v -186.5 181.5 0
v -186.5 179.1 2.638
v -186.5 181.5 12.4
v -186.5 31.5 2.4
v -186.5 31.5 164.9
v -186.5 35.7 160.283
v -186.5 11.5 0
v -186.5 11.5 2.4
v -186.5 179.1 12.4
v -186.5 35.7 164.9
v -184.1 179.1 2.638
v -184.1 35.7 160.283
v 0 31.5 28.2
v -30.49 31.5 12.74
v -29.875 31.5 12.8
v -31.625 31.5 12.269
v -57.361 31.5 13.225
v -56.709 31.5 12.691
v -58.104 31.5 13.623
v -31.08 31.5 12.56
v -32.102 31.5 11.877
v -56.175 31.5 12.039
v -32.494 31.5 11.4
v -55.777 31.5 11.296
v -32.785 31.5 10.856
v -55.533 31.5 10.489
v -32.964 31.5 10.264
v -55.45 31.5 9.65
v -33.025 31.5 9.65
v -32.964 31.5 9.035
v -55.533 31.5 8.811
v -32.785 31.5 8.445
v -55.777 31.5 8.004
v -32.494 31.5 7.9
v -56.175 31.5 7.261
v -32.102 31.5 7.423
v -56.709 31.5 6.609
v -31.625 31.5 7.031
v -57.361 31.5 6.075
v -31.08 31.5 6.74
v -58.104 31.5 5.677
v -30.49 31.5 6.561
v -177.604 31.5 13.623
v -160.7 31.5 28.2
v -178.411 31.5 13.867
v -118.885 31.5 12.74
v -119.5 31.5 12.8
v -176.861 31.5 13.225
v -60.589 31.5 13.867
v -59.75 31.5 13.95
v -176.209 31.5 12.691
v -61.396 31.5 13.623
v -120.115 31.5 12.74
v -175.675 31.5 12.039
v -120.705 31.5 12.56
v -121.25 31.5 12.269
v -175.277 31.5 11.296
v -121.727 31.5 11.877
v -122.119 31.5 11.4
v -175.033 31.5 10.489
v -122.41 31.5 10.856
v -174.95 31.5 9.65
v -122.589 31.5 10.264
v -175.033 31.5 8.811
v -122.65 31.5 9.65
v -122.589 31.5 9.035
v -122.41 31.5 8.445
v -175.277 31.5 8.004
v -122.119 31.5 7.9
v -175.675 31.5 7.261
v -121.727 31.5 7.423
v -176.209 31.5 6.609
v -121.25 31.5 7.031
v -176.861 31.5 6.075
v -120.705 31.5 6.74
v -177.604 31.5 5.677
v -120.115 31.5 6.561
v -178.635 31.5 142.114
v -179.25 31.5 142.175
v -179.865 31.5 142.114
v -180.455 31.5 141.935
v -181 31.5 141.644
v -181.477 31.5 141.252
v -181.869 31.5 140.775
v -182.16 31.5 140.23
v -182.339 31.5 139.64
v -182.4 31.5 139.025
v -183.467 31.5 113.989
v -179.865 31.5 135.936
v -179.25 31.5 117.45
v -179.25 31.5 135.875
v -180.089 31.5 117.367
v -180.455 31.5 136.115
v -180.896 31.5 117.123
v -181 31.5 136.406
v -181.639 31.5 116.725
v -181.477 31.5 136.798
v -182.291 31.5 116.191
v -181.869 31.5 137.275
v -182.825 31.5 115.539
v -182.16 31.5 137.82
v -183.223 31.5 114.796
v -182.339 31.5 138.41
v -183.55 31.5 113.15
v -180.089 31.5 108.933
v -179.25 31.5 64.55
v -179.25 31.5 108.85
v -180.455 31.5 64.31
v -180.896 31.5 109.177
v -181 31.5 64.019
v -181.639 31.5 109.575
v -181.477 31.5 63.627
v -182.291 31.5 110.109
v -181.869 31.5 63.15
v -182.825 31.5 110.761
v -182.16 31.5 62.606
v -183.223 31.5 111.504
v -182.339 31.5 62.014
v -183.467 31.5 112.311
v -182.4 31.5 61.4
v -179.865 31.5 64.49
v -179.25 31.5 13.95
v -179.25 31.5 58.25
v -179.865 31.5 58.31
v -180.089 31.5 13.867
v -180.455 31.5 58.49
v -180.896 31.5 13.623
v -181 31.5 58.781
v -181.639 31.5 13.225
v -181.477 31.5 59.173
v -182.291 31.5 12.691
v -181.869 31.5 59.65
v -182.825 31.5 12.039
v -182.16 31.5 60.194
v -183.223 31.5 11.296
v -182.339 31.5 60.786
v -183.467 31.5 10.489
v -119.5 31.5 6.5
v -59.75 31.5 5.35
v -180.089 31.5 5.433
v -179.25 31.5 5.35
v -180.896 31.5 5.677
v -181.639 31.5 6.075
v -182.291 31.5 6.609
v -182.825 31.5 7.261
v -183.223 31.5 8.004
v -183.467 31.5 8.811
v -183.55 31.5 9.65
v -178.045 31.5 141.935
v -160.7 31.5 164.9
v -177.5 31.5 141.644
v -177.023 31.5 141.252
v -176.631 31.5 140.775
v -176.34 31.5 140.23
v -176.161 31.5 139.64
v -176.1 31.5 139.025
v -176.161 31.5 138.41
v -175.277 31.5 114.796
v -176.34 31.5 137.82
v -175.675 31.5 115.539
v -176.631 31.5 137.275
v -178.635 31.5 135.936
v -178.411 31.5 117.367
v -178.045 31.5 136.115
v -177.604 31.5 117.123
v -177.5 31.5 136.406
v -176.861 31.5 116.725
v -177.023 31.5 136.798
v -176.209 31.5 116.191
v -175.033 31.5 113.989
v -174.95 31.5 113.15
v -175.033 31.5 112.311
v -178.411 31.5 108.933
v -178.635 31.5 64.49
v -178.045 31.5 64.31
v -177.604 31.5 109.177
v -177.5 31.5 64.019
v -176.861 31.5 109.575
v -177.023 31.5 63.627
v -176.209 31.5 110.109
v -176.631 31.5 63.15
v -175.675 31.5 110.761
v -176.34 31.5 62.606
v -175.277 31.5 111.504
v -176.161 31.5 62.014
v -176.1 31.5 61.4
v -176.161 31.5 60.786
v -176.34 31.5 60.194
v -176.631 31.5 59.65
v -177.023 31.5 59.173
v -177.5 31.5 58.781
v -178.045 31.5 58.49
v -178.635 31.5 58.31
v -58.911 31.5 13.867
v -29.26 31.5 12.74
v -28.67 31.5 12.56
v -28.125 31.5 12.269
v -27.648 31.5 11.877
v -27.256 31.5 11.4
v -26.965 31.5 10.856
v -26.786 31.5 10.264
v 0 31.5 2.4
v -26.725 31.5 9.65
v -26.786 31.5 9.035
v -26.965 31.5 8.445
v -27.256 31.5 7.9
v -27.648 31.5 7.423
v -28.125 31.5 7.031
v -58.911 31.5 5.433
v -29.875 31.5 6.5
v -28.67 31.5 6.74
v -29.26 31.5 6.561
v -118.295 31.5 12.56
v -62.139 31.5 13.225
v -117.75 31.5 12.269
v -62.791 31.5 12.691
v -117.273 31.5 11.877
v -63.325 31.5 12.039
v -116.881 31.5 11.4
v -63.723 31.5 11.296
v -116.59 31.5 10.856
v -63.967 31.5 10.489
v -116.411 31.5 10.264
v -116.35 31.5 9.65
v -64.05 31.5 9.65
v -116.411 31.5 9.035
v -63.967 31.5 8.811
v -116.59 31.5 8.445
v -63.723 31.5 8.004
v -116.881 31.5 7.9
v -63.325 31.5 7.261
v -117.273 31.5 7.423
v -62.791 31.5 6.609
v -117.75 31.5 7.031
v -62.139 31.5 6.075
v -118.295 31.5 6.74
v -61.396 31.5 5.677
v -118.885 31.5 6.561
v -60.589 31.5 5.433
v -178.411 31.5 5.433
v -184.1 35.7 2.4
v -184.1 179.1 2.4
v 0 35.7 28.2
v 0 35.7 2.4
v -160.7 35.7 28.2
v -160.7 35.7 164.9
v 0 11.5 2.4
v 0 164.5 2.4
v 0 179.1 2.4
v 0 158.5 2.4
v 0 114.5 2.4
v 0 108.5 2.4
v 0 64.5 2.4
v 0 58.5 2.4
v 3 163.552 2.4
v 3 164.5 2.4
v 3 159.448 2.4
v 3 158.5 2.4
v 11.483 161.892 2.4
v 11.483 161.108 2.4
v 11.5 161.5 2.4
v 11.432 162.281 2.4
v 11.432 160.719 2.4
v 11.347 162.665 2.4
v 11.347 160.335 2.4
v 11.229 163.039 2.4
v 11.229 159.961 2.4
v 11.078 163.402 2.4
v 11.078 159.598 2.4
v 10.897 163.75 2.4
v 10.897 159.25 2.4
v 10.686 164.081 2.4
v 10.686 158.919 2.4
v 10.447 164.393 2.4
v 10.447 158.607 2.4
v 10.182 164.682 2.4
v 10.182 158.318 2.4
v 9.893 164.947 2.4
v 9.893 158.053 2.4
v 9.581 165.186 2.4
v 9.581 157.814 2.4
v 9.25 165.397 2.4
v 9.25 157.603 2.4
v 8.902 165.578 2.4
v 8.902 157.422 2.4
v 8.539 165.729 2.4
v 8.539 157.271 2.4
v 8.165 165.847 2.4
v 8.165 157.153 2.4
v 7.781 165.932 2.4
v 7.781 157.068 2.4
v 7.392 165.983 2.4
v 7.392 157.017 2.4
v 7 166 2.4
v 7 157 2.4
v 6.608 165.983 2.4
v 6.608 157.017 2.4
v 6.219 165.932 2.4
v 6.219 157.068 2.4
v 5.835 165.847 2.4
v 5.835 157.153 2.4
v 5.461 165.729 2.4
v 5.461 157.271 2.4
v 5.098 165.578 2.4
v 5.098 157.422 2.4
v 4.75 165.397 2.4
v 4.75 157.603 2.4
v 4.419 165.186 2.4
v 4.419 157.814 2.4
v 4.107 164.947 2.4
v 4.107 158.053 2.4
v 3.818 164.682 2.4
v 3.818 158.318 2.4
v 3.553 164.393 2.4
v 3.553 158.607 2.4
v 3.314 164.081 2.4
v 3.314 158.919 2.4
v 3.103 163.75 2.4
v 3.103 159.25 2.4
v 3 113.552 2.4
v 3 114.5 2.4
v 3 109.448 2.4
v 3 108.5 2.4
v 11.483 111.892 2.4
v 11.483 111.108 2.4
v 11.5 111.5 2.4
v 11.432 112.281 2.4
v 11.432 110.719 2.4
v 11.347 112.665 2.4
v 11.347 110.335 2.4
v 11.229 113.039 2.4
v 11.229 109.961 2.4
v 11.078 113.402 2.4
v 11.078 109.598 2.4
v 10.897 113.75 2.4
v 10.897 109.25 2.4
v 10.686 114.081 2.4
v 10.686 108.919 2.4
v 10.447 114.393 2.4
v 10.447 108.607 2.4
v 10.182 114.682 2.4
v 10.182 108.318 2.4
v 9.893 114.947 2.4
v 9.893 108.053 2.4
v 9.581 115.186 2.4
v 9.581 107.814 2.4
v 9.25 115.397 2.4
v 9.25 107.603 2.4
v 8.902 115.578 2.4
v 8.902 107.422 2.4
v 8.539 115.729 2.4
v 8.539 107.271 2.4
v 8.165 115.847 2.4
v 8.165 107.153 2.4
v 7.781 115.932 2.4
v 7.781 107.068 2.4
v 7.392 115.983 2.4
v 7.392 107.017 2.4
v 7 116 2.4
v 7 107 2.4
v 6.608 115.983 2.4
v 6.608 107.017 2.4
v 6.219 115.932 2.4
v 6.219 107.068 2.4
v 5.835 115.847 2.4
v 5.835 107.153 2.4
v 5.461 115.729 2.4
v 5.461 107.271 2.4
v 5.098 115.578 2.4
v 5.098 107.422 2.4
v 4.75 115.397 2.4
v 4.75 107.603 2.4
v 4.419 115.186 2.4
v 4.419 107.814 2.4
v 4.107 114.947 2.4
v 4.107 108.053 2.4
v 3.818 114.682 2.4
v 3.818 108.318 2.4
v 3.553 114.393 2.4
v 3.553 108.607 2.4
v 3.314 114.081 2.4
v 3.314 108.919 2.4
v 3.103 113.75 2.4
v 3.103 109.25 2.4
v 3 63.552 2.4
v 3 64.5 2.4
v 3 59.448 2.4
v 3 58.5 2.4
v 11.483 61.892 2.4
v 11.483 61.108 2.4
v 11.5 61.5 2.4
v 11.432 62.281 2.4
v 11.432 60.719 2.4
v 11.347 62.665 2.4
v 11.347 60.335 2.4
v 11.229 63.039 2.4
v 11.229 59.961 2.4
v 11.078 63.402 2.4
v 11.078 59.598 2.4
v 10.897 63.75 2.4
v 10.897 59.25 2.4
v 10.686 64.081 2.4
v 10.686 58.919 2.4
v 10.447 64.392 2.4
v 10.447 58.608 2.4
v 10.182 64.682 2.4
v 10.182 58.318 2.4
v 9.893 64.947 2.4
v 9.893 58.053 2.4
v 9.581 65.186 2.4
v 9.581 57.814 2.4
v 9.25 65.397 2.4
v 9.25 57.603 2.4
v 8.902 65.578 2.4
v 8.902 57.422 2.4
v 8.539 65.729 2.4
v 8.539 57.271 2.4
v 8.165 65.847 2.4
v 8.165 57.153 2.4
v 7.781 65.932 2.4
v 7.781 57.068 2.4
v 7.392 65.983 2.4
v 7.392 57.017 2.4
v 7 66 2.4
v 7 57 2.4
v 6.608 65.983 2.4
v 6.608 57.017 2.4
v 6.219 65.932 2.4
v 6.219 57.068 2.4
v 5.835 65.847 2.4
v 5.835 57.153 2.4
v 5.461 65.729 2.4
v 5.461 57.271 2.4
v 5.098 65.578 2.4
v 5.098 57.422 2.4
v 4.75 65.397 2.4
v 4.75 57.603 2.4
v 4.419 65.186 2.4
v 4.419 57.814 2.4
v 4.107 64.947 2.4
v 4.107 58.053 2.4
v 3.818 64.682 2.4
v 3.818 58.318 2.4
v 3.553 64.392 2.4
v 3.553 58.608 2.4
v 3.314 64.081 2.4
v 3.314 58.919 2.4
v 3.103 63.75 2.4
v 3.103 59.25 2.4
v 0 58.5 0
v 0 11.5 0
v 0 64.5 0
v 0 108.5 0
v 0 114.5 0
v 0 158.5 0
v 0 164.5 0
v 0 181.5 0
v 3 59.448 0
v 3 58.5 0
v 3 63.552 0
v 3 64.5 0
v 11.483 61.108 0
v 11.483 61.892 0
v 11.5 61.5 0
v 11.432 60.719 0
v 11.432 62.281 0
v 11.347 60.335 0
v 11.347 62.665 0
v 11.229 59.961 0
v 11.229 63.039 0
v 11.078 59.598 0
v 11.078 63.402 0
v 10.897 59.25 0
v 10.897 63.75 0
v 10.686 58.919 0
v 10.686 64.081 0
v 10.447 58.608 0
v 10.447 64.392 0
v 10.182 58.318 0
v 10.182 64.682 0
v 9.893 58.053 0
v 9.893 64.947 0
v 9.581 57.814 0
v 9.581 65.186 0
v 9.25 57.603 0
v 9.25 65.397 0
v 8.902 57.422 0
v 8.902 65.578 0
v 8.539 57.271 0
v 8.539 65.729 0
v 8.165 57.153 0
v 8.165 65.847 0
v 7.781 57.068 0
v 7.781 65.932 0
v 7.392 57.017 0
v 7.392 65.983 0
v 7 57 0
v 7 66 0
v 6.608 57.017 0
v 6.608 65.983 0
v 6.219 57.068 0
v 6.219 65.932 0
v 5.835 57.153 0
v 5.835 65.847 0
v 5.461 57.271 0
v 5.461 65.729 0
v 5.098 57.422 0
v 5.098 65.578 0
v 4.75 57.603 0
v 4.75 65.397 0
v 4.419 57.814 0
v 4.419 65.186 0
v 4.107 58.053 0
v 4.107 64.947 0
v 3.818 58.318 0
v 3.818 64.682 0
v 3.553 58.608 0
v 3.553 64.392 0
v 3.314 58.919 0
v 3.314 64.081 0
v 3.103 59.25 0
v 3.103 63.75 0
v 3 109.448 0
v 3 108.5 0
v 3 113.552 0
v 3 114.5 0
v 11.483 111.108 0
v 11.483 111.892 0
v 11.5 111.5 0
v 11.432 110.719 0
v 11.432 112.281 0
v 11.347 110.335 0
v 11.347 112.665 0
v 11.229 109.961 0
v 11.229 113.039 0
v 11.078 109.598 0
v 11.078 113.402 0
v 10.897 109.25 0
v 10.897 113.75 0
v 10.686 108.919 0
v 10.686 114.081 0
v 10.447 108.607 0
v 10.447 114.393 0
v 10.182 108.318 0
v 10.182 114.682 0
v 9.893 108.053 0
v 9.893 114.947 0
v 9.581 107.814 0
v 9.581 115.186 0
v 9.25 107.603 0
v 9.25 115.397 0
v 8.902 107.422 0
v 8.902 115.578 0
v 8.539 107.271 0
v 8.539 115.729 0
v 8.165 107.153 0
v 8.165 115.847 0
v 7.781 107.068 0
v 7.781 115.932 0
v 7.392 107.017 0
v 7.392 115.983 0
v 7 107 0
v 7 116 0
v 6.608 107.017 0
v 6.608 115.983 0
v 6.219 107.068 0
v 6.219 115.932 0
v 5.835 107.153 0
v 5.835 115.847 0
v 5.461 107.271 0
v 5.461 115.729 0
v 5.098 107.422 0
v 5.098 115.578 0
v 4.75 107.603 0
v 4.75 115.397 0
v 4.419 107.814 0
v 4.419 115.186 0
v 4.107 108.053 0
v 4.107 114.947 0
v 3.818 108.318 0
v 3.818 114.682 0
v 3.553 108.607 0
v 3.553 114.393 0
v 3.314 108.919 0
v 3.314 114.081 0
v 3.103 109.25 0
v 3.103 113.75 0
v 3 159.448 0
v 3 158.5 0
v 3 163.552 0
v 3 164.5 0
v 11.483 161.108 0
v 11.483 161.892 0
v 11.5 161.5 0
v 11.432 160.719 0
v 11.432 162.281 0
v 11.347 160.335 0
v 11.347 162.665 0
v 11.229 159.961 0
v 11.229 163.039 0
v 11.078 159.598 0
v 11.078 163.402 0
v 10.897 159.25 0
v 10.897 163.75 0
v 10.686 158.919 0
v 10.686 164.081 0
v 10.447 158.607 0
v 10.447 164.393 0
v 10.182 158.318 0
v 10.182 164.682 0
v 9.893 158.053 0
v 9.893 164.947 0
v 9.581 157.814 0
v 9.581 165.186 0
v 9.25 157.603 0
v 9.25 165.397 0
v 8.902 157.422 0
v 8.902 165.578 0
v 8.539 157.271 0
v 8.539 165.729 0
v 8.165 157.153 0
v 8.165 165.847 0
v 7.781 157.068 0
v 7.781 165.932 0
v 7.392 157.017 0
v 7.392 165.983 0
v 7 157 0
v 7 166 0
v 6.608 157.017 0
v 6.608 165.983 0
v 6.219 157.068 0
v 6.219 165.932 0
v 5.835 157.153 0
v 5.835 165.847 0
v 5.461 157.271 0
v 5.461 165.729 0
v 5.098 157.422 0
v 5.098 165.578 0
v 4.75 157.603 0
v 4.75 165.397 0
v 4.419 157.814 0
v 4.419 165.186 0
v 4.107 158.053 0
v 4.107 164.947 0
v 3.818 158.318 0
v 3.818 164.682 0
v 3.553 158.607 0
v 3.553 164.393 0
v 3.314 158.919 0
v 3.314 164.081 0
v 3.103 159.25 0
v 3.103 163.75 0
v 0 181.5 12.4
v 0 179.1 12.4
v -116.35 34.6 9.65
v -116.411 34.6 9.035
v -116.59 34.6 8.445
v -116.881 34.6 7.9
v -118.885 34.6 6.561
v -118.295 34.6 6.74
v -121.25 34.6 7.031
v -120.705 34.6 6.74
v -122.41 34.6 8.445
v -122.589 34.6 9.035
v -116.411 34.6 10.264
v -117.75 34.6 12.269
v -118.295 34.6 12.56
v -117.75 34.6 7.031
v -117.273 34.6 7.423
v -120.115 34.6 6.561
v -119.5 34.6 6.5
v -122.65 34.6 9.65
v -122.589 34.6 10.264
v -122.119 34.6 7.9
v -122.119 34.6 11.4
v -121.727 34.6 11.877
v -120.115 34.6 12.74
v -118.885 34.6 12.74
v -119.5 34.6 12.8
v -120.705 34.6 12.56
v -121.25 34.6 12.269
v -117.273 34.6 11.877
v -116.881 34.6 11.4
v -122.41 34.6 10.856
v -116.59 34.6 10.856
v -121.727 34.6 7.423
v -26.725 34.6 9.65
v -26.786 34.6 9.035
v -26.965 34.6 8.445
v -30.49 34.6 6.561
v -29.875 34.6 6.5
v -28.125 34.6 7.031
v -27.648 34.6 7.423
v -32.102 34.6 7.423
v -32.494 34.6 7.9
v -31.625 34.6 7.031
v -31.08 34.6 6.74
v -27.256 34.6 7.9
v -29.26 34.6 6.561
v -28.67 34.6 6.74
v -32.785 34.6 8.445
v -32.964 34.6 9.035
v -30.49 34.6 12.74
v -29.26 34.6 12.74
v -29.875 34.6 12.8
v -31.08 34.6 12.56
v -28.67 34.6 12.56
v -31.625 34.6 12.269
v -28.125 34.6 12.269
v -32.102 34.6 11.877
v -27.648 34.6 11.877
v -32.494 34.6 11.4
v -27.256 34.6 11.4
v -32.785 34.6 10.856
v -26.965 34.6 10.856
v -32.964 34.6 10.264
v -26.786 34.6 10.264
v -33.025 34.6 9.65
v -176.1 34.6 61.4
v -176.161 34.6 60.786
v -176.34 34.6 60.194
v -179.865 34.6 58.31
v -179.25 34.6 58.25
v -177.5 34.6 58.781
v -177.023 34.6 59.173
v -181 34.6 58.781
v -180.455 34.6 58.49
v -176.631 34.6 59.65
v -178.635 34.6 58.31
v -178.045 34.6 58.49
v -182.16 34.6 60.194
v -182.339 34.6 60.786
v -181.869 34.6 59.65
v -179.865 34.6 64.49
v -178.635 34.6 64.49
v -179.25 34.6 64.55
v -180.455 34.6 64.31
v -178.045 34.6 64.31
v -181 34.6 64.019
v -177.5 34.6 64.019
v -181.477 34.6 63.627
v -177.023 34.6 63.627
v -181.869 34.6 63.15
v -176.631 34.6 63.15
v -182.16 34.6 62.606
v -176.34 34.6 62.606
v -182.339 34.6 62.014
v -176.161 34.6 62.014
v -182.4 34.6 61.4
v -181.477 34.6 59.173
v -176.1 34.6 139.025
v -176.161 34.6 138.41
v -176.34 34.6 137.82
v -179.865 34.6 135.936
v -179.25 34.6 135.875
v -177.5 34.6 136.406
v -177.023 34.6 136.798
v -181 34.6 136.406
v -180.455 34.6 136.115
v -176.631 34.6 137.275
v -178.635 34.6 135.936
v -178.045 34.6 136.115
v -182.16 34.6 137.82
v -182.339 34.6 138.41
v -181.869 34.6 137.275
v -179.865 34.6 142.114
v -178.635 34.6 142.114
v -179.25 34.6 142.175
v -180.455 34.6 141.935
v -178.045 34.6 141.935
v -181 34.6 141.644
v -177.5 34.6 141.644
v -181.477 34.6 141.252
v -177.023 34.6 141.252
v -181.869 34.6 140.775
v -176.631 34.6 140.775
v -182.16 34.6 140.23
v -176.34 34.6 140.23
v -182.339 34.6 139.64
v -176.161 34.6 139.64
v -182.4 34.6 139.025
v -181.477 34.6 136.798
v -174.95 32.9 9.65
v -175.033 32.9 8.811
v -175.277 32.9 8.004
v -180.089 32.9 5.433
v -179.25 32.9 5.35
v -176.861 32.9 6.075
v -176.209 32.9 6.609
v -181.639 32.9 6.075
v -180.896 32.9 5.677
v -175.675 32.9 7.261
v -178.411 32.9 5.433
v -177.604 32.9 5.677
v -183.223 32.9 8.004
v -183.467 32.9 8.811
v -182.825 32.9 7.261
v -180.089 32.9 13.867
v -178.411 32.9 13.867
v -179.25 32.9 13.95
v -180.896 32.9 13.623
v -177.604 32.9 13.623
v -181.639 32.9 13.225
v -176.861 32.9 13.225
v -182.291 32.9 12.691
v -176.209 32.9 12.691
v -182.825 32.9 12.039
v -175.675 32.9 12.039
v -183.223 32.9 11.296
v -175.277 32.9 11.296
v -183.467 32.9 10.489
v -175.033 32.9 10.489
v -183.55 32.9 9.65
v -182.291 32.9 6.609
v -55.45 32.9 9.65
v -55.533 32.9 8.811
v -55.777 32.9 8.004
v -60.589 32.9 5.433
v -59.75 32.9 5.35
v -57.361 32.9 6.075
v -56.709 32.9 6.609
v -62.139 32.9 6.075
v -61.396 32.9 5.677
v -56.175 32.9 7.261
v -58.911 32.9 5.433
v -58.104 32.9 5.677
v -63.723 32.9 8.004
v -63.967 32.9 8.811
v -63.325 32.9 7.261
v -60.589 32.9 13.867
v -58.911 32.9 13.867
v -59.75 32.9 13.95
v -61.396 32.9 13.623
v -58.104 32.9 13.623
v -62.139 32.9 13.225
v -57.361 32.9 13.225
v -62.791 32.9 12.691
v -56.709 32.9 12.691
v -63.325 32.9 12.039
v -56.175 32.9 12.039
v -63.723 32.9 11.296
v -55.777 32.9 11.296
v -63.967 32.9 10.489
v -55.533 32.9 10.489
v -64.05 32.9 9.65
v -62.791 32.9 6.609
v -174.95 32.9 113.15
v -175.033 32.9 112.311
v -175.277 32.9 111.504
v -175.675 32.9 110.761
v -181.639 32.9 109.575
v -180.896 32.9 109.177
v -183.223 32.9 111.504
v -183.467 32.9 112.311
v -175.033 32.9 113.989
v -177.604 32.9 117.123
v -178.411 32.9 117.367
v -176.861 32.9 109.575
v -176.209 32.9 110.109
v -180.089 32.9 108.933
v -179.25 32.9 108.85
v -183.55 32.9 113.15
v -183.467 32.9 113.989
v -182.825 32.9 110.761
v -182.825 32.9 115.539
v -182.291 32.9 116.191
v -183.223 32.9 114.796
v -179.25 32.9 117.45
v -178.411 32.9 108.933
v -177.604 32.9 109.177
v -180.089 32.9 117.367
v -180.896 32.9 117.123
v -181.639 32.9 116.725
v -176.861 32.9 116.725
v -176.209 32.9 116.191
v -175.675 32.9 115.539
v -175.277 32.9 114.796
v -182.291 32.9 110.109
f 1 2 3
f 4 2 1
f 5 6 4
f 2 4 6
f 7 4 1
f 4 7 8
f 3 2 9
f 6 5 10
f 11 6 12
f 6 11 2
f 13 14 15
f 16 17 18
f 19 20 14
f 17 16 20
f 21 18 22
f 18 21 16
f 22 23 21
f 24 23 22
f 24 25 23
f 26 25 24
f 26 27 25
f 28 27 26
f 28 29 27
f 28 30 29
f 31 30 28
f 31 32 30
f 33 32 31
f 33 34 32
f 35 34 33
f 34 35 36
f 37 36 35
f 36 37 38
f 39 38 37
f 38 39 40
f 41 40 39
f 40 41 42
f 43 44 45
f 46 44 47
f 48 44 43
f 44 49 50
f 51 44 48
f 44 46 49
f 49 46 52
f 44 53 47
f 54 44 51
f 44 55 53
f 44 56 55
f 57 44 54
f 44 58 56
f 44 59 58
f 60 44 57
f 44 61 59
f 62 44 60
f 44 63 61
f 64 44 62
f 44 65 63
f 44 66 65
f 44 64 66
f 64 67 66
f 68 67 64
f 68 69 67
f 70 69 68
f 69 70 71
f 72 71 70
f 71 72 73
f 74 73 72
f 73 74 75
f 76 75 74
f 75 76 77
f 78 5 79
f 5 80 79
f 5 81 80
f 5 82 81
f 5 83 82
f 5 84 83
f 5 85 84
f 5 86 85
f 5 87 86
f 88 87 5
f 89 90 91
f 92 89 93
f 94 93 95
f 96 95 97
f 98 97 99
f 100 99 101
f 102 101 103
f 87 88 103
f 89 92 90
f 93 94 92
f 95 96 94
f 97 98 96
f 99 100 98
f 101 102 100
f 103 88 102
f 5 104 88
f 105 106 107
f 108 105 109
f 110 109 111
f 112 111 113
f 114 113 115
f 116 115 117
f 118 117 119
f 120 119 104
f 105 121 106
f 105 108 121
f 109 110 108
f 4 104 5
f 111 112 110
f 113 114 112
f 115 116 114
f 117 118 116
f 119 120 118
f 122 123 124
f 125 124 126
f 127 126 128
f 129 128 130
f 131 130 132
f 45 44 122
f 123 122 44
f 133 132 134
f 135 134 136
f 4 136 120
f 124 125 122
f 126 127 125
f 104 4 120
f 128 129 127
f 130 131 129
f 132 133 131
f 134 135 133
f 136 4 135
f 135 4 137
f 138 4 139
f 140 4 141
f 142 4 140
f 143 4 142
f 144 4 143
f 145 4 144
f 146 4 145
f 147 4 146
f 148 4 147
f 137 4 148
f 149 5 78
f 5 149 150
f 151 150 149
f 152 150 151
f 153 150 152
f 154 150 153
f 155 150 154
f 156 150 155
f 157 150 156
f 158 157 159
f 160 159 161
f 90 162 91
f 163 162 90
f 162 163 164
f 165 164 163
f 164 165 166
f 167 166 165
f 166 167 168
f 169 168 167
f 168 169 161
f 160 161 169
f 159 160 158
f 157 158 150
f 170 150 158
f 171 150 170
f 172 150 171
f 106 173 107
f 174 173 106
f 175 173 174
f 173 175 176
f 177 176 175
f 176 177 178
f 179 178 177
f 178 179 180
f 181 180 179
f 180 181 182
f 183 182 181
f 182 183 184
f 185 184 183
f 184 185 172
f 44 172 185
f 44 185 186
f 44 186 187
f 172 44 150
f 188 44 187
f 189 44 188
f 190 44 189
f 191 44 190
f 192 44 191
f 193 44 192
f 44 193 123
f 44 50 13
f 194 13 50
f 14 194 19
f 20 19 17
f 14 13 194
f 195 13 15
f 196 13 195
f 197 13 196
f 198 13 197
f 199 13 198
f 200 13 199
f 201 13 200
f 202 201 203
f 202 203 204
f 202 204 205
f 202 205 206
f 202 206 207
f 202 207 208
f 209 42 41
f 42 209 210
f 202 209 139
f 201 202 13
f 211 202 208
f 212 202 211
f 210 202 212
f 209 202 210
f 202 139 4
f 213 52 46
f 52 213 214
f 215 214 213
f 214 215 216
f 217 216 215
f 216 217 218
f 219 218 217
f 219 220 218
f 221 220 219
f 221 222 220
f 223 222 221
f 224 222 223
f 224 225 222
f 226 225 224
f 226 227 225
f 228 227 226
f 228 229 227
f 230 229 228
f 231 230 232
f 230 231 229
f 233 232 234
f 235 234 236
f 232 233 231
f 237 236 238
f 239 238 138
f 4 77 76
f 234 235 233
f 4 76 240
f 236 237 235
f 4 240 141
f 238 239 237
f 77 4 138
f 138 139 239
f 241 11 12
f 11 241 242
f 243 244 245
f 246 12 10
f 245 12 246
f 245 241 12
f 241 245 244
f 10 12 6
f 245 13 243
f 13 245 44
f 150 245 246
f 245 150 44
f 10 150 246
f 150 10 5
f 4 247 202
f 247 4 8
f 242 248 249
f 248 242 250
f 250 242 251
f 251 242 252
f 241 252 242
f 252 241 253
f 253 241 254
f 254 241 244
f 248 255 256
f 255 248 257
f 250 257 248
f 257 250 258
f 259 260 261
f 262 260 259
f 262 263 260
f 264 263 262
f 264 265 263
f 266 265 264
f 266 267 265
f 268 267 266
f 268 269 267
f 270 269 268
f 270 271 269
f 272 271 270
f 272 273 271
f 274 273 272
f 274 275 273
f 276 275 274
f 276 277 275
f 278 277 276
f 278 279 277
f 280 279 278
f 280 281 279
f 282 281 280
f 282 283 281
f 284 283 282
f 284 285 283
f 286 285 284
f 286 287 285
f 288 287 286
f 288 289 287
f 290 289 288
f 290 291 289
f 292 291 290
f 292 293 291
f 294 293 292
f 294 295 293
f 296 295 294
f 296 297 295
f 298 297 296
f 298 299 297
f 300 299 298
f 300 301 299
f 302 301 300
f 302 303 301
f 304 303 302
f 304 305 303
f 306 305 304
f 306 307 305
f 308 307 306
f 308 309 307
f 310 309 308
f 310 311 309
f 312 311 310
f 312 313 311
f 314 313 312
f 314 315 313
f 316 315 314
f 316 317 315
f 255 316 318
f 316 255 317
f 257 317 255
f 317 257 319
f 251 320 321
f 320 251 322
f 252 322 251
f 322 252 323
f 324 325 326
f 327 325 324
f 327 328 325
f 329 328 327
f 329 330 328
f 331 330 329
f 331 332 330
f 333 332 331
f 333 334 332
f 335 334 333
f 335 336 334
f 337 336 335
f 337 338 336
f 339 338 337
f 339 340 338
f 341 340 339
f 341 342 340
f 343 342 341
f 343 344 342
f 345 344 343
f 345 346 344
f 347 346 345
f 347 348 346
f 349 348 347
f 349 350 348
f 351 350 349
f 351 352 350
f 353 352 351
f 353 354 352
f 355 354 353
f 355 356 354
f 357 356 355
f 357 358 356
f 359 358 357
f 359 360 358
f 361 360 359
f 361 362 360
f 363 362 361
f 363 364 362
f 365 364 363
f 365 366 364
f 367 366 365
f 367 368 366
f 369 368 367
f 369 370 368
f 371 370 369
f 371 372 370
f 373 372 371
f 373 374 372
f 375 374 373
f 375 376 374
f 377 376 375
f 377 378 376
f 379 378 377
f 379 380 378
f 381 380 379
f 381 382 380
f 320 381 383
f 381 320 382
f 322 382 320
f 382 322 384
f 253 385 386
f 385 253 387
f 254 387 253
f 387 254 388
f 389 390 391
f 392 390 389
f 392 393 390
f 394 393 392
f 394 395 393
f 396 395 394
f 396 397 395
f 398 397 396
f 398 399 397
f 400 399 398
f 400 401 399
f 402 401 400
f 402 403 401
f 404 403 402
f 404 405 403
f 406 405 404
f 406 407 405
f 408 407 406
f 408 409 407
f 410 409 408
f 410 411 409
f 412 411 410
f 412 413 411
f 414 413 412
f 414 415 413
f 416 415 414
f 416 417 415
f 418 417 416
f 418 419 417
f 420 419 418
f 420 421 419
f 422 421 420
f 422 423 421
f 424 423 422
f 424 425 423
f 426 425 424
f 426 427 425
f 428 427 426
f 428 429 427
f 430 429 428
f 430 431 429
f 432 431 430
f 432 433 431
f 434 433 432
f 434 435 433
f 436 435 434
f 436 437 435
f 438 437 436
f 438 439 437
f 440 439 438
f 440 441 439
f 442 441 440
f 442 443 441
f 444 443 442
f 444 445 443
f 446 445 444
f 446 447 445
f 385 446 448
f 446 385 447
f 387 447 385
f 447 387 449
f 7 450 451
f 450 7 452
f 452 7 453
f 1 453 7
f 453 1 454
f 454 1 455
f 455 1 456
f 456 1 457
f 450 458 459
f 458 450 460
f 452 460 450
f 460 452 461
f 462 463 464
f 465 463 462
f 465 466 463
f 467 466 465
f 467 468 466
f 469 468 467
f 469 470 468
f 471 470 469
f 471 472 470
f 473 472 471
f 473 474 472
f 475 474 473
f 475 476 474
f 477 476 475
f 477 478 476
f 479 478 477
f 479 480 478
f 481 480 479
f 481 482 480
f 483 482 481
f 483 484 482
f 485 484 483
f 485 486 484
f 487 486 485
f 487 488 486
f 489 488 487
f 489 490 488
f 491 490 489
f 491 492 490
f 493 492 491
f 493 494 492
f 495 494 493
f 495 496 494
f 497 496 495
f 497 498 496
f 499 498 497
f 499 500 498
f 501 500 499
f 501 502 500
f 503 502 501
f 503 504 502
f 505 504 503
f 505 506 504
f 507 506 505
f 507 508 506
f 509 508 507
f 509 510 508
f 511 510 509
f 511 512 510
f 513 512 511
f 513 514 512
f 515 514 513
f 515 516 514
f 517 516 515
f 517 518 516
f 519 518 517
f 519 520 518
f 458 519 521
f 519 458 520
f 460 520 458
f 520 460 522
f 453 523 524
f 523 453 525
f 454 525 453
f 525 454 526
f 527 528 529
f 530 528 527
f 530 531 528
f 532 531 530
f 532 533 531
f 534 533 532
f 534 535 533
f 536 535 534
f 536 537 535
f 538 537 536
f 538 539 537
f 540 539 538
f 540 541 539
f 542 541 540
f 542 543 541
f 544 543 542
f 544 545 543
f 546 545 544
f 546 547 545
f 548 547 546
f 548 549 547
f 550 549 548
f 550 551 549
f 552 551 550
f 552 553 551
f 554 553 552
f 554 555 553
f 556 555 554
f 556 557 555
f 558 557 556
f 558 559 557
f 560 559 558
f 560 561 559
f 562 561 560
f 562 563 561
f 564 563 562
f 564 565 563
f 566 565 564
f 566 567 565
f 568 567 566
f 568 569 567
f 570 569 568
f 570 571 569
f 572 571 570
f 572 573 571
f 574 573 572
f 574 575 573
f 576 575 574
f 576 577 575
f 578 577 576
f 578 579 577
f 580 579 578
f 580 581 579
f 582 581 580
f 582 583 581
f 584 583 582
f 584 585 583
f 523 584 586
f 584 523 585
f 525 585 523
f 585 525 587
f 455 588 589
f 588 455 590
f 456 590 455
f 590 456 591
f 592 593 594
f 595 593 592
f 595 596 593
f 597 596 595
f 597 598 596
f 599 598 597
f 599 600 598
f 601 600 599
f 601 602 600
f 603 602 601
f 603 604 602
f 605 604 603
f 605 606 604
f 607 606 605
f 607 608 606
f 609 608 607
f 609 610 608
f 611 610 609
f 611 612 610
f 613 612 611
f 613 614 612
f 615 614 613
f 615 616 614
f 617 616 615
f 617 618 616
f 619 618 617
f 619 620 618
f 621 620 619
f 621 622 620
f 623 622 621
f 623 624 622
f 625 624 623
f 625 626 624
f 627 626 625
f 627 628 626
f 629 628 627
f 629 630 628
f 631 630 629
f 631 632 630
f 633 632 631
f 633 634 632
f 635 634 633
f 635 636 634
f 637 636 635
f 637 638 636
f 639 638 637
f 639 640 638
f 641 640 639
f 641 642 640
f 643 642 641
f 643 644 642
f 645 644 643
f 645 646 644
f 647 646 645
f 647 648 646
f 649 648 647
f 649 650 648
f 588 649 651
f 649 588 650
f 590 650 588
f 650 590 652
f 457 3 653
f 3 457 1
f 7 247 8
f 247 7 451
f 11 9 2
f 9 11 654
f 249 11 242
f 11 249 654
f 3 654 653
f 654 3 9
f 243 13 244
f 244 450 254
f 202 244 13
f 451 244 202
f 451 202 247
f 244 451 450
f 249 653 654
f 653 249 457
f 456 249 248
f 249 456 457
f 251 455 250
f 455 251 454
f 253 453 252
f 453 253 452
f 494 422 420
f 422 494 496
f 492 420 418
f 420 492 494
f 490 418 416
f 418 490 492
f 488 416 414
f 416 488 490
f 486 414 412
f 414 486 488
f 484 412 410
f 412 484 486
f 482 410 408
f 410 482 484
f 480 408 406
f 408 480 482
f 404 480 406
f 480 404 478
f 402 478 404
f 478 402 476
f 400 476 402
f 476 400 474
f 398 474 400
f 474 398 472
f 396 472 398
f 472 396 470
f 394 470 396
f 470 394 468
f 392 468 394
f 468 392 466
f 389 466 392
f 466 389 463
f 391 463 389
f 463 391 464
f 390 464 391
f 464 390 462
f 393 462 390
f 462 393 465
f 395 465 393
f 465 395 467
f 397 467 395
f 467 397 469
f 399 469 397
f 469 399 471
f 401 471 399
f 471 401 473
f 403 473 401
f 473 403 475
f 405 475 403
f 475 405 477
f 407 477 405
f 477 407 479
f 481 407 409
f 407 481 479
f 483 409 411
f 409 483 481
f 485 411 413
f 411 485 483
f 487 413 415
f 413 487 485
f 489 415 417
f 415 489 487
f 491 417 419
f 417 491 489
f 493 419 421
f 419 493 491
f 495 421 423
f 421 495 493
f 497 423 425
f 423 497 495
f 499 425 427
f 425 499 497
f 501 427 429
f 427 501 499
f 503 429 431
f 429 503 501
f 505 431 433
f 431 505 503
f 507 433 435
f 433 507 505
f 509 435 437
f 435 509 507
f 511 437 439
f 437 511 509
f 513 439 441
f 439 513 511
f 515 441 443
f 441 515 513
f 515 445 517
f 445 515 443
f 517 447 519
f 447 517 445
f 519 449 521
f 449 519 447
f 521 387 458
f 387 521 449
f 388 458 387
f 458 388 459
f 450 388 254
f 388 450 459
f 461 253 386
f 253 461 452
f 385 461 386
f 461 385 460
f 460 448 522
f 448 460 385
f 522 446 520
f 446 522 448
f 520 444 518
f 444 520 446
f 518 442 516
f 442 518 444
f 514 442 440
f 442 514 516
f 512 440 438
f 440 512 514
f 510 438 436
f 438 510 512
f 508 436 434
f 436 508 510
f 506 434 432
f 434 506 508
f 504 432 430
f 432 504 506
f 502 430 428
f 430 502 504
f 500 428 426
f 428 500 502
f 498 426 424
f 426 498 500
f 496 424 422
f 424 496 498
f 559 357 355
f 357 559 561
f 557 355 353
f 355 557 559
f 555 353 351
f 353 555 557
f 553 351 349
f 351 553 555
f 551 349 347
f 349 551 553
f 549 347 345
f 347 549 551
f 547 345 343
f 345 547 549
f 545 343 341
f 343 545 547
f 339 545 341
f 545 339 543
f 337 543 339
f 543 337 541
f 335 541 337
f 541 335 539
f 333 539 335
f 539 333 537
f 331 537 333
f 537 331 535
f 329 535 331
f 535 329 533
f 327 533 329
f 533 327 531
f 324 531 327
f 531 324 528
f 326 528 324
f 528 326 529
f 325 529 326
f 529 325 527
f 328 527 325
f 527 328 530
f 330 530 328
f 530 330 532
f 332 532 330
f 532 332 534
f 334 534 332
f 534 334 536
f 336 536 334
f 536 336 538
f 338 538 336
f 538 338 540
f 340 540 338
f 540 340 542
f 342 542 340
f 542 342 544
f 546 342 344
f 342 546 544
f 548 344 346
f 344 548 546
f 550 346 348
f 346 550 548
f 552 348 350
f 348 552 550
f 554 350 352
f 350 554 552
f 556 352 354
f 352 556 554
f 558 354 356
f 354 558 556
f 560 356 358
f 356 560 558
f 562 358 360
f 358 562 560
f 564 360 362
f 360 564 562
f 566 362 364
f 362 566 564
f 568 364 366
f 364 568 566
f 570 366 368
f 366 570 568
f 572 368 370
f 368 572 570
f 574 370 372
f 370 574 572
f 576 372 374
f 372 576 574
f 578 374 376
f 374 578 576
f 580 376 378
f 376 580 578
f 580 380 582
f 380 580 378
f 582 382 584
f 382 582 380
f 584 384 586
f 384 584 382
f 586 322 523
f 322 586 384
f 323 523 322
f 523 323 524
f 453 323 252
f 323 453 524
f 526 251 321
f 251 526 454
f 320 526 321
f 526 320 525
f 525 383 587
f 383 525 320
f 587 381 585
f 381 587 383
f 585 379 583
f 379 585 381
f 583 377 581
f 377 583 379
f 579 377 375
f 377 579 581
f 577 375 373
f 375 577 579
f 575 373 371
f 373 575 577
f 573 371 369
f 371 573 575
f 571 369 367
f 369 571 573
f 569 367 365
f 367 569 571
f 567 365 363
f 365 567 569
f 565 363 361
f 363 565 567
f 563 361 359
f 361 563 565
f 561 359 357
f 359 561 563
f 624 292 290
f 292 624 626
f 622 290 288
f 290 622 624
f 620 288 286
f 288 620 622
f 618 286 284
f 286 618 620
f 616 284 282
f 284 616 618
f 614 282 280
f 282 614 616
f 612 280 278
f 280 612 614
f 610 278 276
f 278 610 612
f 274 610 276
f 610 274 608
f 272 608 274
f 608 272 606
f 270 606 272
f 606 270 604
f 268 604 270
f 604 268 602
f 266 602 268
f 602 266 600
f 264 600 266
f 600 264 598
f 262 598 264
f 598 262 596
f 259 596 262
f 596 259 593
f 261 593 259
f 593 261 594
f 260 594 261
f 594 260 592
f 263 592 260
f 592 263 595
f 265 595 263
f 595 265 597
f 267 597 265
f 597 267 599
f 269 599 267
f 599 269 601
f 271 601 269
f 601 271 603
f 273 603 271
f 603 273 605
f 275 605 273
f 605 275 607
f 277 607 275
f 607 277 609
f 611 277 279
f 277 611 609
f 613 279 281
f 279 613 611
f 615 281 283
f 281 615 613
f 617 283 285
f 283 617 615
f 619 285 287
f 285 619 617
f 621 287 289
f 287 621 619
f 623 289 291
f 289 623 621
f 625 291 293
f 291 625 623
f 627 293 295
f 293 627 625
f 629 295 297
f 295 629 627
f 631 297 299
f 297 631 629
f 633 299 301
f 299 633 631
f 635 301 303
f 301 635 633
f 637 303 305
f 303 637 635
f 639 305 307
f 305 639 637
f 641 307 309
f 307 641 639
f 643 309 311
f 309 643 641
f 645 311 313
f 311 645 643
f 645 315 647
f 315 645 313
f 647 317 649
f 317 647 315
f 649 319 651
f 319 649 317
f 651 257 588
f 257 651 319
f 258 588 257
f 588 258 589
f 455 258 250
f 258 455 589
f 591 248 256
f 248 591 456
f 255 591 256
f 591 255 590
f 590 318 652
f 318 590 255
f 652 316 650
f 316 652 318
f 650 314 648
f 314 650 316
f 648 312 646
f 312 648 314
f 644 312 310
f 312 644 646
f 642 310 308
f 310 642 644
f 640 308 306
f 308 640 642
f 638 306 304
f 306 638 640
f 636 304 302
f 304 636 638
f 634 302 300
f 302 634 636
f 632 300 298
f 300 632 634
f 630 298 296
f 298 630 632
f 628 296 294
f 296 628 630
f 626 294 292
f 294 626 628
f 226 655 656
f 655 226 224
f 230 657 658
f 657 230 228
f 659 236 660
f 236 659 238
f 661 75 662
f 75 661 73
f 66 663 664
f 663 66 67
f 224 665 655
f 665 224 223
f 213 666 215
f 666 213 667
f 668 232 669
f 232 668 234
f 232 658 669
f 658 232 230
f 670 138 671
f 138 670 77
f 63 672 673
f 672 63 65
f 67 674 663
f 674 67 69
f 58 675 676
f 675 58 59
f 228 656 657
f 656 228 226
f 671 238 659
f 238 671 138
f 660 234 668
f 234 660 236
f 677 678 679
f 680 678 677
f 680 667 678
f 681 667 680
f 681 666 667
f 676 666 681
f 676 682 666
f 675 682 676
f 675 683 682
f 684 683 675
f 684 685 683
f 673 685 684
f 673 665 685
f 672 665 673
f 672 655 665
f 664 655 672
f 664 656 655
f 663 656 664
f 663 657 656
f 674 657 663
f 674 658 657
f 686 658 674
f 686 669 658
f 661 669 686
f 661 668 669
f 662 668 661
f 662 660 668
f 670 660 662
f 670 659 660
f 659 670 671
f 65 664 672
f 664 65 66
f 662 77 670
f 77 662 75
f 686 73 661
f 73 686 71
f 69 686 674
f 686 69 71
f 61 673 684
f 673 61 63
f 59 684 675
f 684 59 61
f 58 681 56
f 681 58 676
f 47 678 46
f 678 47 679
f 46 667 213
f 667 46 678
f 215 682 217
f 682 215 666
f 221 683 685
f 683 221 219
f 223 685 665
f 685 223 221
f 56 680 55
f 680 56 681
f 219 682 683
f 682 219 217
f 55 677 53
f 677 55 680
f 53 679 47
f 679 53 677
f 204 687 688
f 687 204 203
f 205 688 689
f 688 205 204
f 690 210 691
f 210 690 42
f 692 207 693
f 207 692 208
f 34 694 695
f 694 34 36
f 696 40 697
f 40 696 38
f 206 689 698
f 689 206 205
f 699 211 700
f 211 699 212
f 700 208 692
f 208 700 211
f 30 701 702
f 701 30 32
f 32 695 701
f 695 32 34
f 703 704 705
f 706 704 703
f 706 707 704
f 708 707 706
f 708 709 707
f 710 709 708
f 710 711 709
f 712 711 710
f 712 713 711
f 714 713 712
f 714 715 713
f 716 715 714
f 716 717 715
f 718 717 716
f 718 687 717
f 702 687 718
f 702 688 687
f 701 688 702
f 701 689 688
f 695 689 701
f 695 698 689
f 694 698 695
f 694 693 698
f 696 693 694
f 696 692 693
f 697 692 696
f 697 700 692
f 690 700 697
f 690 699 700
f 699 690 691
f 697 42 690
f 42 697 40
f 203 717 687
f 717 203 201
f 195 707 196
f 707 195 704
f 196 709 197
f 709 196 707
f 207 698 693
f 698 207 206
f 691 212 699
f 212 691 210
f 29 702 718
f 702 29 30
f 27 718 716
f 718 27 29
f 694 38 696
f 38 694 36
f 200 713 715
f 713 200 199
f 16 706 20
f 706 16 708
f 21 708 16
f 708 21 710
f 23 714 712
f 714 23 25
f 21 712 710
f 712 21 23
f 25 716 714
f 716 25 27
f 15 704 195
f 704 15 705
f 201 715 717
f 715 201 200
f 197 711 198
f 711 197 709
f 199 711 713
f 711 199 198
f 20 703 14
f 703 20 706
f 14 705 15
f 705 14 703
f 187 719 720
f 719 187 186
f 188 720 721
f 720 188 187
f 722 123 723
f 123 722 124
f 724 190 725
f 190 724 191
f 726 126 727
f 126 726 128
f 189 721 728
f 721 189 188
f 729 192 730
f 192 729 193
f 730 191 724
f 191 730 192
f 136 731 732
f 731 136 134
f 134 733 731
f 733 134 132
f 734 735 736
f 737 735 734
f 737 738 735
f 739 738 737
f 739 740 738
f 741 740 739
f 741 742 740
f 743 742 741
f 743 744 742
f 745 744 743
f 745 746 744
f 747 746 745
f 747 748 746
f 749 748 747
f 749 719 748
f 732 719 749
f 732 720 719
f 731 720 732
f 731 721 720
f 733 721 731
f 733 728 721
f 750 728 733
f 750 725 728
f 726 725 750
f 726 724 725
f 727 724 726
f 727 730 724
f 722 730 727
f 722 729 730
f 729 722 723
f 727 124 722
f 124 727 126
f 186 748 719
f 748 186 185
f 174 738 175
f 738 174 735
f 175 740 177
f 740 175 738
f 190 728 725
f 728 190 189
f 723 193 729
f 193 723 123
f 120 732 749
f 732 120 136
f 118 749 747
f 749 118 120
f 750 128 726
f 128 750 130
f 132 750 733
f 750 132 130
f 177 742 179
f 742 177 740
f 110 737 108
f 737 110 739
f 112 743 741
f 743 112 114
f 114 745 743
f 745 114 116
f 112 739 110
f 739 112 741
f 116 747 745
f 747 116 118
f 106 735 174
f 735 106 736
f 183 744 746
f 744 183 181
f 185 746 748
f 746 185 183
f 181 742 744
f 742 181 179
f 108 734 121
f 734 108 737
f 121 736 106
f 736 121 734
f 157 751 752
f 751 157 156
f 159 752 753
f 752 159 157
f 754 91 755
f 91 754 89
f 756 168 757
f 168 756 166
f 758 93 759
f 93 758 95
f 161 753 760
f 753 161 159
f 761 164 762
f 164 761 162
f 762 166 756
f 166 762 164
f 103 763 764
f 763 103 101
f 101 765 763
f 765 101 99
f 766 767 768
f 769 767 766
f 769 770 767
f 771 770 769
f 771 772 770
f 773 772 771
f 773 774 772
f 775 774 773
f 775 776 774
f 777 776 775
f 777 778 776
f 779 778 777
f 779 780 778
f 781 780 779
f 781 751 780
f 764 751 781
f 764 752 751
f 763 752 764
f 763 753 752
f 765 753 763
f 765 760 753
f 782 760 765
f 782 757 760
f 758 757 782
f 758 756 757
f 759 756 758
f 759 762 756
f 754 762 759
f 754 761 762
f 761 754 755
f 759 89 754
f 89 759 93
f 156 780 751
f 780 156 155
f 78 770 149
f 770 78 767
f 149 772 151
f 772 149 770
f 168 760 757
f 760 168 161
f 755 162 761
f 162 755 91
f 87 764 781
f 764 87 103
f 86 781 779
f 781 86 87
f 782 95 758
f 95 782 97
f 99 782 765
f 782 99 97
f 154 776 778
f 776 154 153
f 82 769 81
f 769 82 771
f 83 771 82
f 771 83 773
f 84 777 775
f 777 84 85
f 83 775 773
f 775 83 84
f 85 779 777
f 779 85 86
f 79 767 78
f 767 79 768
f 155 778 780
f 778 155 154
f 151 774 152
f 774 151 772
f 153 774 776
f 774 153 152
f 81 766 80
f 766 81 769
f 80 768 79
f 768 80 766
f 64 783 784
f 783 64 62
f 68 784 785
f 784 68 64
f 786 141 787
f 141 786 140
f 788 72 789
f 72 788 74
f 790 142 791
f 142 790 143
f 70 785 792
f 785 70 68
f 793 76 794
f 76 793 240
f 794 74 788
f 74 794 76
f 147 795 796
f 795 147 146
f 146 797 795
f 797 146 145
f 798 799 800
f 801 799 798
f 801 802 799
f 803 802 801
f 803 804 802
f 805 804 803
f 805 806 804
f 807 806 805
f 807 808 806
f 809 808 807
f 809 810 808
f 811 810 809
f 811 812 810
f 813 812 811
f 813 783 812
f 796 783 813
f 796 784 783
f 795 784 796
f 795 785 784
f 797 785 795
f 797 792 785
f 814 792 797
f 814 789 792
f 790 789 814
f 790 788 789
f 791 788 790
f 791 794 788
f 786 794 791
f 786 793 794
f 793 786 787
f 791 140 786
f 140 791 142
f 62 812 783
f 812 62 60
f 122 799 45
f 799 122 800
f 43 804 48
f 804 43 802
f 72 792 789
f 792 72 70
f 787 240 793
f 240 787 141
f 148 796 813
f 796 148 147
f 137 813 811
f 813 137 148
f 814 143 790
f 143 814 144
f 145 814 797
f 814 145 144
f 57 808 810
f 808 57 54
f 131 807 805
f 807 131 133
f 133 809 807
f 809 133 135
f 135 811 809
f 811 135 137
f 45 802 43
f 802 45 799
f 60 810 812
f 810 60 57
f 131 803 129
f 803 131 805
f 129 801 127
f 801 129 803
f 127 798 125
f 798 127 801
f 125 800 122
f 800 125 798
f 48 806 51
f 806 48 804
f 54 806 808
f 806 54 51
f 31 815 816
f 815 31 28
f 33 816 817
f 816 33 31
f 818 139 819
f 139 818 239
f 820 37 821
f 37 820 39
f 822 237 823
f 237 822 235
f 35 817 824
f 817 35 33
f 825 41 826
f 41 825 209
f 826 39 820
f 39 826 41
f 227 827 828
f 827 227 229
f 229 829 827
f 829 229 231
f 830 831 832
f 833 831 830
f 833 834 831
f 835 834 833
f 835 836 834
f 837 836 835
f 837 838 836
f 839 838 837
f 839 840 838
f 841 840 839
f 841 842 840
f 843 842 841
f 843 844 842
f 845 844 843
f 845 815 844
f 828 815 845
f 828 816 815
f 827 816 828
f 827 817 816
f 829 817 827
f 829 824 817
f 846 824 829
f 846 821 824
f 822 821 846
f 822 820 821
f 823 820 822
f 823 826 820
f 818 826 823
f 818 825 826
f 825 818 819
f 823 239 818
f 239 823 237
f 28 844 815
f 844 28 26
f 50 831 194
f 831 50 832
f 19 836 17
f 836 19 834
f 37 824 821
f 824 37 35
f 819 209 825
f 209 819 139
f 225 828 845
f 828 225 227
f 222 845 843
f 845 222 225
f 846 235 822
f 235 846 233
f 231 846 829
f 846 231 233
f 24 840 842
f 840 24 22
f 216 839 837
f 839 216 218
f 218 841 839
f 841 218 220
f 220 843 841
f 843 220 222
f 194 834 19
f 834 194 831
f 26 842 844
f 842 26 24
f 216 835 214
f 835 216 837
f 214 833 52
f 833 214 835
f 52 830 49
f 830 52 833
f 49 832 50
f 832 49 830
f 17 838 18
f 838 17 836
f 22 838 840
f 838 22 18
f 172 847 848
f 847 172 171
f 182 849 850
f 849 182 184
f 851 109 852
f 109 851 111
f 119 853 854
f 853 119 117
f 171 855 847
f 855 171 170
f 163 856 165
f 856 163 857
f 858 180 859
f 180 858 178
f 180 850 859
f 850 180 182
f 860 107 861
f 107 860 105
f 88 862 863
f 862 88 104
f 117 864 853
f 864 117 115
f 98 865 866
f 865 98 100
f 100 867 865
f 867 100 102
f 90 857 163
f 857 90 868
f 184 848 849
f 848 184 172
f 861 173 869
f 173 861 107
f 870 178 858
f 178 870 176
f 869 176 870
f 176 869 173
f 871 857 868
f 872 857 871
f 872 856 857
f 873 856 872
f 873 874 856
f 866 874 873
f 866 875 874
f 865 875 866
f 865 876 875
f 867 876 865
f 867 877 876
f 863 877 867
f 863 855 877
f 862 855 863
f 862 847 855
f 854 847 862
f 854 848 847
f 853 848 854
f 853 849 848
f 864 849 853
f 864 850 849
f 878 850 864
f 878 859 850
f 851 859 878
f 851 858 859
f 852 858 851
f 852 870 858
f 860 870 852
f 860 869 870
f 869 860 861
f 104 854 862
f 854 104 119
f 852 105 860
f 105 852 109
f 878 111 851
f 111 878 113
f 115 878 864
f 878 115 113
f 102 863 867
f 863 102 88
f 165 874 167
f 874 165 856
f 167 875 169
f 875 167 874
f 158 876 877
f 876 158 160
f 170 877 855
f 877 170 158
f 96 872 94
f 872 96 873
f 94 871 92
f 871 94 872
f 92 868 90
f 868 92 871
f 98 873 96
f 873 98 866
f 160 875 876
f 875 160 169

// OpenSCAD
// P17 — Visor, left half V1 (owns the jigsaw knobs). Canopy top face on the bed. CLEAR PLA, 100%.
// Needs lfh_v1_reference.scad in the same folder.
include <lfh_v1_reference.scad>
part = "V1";
pose = "print";
